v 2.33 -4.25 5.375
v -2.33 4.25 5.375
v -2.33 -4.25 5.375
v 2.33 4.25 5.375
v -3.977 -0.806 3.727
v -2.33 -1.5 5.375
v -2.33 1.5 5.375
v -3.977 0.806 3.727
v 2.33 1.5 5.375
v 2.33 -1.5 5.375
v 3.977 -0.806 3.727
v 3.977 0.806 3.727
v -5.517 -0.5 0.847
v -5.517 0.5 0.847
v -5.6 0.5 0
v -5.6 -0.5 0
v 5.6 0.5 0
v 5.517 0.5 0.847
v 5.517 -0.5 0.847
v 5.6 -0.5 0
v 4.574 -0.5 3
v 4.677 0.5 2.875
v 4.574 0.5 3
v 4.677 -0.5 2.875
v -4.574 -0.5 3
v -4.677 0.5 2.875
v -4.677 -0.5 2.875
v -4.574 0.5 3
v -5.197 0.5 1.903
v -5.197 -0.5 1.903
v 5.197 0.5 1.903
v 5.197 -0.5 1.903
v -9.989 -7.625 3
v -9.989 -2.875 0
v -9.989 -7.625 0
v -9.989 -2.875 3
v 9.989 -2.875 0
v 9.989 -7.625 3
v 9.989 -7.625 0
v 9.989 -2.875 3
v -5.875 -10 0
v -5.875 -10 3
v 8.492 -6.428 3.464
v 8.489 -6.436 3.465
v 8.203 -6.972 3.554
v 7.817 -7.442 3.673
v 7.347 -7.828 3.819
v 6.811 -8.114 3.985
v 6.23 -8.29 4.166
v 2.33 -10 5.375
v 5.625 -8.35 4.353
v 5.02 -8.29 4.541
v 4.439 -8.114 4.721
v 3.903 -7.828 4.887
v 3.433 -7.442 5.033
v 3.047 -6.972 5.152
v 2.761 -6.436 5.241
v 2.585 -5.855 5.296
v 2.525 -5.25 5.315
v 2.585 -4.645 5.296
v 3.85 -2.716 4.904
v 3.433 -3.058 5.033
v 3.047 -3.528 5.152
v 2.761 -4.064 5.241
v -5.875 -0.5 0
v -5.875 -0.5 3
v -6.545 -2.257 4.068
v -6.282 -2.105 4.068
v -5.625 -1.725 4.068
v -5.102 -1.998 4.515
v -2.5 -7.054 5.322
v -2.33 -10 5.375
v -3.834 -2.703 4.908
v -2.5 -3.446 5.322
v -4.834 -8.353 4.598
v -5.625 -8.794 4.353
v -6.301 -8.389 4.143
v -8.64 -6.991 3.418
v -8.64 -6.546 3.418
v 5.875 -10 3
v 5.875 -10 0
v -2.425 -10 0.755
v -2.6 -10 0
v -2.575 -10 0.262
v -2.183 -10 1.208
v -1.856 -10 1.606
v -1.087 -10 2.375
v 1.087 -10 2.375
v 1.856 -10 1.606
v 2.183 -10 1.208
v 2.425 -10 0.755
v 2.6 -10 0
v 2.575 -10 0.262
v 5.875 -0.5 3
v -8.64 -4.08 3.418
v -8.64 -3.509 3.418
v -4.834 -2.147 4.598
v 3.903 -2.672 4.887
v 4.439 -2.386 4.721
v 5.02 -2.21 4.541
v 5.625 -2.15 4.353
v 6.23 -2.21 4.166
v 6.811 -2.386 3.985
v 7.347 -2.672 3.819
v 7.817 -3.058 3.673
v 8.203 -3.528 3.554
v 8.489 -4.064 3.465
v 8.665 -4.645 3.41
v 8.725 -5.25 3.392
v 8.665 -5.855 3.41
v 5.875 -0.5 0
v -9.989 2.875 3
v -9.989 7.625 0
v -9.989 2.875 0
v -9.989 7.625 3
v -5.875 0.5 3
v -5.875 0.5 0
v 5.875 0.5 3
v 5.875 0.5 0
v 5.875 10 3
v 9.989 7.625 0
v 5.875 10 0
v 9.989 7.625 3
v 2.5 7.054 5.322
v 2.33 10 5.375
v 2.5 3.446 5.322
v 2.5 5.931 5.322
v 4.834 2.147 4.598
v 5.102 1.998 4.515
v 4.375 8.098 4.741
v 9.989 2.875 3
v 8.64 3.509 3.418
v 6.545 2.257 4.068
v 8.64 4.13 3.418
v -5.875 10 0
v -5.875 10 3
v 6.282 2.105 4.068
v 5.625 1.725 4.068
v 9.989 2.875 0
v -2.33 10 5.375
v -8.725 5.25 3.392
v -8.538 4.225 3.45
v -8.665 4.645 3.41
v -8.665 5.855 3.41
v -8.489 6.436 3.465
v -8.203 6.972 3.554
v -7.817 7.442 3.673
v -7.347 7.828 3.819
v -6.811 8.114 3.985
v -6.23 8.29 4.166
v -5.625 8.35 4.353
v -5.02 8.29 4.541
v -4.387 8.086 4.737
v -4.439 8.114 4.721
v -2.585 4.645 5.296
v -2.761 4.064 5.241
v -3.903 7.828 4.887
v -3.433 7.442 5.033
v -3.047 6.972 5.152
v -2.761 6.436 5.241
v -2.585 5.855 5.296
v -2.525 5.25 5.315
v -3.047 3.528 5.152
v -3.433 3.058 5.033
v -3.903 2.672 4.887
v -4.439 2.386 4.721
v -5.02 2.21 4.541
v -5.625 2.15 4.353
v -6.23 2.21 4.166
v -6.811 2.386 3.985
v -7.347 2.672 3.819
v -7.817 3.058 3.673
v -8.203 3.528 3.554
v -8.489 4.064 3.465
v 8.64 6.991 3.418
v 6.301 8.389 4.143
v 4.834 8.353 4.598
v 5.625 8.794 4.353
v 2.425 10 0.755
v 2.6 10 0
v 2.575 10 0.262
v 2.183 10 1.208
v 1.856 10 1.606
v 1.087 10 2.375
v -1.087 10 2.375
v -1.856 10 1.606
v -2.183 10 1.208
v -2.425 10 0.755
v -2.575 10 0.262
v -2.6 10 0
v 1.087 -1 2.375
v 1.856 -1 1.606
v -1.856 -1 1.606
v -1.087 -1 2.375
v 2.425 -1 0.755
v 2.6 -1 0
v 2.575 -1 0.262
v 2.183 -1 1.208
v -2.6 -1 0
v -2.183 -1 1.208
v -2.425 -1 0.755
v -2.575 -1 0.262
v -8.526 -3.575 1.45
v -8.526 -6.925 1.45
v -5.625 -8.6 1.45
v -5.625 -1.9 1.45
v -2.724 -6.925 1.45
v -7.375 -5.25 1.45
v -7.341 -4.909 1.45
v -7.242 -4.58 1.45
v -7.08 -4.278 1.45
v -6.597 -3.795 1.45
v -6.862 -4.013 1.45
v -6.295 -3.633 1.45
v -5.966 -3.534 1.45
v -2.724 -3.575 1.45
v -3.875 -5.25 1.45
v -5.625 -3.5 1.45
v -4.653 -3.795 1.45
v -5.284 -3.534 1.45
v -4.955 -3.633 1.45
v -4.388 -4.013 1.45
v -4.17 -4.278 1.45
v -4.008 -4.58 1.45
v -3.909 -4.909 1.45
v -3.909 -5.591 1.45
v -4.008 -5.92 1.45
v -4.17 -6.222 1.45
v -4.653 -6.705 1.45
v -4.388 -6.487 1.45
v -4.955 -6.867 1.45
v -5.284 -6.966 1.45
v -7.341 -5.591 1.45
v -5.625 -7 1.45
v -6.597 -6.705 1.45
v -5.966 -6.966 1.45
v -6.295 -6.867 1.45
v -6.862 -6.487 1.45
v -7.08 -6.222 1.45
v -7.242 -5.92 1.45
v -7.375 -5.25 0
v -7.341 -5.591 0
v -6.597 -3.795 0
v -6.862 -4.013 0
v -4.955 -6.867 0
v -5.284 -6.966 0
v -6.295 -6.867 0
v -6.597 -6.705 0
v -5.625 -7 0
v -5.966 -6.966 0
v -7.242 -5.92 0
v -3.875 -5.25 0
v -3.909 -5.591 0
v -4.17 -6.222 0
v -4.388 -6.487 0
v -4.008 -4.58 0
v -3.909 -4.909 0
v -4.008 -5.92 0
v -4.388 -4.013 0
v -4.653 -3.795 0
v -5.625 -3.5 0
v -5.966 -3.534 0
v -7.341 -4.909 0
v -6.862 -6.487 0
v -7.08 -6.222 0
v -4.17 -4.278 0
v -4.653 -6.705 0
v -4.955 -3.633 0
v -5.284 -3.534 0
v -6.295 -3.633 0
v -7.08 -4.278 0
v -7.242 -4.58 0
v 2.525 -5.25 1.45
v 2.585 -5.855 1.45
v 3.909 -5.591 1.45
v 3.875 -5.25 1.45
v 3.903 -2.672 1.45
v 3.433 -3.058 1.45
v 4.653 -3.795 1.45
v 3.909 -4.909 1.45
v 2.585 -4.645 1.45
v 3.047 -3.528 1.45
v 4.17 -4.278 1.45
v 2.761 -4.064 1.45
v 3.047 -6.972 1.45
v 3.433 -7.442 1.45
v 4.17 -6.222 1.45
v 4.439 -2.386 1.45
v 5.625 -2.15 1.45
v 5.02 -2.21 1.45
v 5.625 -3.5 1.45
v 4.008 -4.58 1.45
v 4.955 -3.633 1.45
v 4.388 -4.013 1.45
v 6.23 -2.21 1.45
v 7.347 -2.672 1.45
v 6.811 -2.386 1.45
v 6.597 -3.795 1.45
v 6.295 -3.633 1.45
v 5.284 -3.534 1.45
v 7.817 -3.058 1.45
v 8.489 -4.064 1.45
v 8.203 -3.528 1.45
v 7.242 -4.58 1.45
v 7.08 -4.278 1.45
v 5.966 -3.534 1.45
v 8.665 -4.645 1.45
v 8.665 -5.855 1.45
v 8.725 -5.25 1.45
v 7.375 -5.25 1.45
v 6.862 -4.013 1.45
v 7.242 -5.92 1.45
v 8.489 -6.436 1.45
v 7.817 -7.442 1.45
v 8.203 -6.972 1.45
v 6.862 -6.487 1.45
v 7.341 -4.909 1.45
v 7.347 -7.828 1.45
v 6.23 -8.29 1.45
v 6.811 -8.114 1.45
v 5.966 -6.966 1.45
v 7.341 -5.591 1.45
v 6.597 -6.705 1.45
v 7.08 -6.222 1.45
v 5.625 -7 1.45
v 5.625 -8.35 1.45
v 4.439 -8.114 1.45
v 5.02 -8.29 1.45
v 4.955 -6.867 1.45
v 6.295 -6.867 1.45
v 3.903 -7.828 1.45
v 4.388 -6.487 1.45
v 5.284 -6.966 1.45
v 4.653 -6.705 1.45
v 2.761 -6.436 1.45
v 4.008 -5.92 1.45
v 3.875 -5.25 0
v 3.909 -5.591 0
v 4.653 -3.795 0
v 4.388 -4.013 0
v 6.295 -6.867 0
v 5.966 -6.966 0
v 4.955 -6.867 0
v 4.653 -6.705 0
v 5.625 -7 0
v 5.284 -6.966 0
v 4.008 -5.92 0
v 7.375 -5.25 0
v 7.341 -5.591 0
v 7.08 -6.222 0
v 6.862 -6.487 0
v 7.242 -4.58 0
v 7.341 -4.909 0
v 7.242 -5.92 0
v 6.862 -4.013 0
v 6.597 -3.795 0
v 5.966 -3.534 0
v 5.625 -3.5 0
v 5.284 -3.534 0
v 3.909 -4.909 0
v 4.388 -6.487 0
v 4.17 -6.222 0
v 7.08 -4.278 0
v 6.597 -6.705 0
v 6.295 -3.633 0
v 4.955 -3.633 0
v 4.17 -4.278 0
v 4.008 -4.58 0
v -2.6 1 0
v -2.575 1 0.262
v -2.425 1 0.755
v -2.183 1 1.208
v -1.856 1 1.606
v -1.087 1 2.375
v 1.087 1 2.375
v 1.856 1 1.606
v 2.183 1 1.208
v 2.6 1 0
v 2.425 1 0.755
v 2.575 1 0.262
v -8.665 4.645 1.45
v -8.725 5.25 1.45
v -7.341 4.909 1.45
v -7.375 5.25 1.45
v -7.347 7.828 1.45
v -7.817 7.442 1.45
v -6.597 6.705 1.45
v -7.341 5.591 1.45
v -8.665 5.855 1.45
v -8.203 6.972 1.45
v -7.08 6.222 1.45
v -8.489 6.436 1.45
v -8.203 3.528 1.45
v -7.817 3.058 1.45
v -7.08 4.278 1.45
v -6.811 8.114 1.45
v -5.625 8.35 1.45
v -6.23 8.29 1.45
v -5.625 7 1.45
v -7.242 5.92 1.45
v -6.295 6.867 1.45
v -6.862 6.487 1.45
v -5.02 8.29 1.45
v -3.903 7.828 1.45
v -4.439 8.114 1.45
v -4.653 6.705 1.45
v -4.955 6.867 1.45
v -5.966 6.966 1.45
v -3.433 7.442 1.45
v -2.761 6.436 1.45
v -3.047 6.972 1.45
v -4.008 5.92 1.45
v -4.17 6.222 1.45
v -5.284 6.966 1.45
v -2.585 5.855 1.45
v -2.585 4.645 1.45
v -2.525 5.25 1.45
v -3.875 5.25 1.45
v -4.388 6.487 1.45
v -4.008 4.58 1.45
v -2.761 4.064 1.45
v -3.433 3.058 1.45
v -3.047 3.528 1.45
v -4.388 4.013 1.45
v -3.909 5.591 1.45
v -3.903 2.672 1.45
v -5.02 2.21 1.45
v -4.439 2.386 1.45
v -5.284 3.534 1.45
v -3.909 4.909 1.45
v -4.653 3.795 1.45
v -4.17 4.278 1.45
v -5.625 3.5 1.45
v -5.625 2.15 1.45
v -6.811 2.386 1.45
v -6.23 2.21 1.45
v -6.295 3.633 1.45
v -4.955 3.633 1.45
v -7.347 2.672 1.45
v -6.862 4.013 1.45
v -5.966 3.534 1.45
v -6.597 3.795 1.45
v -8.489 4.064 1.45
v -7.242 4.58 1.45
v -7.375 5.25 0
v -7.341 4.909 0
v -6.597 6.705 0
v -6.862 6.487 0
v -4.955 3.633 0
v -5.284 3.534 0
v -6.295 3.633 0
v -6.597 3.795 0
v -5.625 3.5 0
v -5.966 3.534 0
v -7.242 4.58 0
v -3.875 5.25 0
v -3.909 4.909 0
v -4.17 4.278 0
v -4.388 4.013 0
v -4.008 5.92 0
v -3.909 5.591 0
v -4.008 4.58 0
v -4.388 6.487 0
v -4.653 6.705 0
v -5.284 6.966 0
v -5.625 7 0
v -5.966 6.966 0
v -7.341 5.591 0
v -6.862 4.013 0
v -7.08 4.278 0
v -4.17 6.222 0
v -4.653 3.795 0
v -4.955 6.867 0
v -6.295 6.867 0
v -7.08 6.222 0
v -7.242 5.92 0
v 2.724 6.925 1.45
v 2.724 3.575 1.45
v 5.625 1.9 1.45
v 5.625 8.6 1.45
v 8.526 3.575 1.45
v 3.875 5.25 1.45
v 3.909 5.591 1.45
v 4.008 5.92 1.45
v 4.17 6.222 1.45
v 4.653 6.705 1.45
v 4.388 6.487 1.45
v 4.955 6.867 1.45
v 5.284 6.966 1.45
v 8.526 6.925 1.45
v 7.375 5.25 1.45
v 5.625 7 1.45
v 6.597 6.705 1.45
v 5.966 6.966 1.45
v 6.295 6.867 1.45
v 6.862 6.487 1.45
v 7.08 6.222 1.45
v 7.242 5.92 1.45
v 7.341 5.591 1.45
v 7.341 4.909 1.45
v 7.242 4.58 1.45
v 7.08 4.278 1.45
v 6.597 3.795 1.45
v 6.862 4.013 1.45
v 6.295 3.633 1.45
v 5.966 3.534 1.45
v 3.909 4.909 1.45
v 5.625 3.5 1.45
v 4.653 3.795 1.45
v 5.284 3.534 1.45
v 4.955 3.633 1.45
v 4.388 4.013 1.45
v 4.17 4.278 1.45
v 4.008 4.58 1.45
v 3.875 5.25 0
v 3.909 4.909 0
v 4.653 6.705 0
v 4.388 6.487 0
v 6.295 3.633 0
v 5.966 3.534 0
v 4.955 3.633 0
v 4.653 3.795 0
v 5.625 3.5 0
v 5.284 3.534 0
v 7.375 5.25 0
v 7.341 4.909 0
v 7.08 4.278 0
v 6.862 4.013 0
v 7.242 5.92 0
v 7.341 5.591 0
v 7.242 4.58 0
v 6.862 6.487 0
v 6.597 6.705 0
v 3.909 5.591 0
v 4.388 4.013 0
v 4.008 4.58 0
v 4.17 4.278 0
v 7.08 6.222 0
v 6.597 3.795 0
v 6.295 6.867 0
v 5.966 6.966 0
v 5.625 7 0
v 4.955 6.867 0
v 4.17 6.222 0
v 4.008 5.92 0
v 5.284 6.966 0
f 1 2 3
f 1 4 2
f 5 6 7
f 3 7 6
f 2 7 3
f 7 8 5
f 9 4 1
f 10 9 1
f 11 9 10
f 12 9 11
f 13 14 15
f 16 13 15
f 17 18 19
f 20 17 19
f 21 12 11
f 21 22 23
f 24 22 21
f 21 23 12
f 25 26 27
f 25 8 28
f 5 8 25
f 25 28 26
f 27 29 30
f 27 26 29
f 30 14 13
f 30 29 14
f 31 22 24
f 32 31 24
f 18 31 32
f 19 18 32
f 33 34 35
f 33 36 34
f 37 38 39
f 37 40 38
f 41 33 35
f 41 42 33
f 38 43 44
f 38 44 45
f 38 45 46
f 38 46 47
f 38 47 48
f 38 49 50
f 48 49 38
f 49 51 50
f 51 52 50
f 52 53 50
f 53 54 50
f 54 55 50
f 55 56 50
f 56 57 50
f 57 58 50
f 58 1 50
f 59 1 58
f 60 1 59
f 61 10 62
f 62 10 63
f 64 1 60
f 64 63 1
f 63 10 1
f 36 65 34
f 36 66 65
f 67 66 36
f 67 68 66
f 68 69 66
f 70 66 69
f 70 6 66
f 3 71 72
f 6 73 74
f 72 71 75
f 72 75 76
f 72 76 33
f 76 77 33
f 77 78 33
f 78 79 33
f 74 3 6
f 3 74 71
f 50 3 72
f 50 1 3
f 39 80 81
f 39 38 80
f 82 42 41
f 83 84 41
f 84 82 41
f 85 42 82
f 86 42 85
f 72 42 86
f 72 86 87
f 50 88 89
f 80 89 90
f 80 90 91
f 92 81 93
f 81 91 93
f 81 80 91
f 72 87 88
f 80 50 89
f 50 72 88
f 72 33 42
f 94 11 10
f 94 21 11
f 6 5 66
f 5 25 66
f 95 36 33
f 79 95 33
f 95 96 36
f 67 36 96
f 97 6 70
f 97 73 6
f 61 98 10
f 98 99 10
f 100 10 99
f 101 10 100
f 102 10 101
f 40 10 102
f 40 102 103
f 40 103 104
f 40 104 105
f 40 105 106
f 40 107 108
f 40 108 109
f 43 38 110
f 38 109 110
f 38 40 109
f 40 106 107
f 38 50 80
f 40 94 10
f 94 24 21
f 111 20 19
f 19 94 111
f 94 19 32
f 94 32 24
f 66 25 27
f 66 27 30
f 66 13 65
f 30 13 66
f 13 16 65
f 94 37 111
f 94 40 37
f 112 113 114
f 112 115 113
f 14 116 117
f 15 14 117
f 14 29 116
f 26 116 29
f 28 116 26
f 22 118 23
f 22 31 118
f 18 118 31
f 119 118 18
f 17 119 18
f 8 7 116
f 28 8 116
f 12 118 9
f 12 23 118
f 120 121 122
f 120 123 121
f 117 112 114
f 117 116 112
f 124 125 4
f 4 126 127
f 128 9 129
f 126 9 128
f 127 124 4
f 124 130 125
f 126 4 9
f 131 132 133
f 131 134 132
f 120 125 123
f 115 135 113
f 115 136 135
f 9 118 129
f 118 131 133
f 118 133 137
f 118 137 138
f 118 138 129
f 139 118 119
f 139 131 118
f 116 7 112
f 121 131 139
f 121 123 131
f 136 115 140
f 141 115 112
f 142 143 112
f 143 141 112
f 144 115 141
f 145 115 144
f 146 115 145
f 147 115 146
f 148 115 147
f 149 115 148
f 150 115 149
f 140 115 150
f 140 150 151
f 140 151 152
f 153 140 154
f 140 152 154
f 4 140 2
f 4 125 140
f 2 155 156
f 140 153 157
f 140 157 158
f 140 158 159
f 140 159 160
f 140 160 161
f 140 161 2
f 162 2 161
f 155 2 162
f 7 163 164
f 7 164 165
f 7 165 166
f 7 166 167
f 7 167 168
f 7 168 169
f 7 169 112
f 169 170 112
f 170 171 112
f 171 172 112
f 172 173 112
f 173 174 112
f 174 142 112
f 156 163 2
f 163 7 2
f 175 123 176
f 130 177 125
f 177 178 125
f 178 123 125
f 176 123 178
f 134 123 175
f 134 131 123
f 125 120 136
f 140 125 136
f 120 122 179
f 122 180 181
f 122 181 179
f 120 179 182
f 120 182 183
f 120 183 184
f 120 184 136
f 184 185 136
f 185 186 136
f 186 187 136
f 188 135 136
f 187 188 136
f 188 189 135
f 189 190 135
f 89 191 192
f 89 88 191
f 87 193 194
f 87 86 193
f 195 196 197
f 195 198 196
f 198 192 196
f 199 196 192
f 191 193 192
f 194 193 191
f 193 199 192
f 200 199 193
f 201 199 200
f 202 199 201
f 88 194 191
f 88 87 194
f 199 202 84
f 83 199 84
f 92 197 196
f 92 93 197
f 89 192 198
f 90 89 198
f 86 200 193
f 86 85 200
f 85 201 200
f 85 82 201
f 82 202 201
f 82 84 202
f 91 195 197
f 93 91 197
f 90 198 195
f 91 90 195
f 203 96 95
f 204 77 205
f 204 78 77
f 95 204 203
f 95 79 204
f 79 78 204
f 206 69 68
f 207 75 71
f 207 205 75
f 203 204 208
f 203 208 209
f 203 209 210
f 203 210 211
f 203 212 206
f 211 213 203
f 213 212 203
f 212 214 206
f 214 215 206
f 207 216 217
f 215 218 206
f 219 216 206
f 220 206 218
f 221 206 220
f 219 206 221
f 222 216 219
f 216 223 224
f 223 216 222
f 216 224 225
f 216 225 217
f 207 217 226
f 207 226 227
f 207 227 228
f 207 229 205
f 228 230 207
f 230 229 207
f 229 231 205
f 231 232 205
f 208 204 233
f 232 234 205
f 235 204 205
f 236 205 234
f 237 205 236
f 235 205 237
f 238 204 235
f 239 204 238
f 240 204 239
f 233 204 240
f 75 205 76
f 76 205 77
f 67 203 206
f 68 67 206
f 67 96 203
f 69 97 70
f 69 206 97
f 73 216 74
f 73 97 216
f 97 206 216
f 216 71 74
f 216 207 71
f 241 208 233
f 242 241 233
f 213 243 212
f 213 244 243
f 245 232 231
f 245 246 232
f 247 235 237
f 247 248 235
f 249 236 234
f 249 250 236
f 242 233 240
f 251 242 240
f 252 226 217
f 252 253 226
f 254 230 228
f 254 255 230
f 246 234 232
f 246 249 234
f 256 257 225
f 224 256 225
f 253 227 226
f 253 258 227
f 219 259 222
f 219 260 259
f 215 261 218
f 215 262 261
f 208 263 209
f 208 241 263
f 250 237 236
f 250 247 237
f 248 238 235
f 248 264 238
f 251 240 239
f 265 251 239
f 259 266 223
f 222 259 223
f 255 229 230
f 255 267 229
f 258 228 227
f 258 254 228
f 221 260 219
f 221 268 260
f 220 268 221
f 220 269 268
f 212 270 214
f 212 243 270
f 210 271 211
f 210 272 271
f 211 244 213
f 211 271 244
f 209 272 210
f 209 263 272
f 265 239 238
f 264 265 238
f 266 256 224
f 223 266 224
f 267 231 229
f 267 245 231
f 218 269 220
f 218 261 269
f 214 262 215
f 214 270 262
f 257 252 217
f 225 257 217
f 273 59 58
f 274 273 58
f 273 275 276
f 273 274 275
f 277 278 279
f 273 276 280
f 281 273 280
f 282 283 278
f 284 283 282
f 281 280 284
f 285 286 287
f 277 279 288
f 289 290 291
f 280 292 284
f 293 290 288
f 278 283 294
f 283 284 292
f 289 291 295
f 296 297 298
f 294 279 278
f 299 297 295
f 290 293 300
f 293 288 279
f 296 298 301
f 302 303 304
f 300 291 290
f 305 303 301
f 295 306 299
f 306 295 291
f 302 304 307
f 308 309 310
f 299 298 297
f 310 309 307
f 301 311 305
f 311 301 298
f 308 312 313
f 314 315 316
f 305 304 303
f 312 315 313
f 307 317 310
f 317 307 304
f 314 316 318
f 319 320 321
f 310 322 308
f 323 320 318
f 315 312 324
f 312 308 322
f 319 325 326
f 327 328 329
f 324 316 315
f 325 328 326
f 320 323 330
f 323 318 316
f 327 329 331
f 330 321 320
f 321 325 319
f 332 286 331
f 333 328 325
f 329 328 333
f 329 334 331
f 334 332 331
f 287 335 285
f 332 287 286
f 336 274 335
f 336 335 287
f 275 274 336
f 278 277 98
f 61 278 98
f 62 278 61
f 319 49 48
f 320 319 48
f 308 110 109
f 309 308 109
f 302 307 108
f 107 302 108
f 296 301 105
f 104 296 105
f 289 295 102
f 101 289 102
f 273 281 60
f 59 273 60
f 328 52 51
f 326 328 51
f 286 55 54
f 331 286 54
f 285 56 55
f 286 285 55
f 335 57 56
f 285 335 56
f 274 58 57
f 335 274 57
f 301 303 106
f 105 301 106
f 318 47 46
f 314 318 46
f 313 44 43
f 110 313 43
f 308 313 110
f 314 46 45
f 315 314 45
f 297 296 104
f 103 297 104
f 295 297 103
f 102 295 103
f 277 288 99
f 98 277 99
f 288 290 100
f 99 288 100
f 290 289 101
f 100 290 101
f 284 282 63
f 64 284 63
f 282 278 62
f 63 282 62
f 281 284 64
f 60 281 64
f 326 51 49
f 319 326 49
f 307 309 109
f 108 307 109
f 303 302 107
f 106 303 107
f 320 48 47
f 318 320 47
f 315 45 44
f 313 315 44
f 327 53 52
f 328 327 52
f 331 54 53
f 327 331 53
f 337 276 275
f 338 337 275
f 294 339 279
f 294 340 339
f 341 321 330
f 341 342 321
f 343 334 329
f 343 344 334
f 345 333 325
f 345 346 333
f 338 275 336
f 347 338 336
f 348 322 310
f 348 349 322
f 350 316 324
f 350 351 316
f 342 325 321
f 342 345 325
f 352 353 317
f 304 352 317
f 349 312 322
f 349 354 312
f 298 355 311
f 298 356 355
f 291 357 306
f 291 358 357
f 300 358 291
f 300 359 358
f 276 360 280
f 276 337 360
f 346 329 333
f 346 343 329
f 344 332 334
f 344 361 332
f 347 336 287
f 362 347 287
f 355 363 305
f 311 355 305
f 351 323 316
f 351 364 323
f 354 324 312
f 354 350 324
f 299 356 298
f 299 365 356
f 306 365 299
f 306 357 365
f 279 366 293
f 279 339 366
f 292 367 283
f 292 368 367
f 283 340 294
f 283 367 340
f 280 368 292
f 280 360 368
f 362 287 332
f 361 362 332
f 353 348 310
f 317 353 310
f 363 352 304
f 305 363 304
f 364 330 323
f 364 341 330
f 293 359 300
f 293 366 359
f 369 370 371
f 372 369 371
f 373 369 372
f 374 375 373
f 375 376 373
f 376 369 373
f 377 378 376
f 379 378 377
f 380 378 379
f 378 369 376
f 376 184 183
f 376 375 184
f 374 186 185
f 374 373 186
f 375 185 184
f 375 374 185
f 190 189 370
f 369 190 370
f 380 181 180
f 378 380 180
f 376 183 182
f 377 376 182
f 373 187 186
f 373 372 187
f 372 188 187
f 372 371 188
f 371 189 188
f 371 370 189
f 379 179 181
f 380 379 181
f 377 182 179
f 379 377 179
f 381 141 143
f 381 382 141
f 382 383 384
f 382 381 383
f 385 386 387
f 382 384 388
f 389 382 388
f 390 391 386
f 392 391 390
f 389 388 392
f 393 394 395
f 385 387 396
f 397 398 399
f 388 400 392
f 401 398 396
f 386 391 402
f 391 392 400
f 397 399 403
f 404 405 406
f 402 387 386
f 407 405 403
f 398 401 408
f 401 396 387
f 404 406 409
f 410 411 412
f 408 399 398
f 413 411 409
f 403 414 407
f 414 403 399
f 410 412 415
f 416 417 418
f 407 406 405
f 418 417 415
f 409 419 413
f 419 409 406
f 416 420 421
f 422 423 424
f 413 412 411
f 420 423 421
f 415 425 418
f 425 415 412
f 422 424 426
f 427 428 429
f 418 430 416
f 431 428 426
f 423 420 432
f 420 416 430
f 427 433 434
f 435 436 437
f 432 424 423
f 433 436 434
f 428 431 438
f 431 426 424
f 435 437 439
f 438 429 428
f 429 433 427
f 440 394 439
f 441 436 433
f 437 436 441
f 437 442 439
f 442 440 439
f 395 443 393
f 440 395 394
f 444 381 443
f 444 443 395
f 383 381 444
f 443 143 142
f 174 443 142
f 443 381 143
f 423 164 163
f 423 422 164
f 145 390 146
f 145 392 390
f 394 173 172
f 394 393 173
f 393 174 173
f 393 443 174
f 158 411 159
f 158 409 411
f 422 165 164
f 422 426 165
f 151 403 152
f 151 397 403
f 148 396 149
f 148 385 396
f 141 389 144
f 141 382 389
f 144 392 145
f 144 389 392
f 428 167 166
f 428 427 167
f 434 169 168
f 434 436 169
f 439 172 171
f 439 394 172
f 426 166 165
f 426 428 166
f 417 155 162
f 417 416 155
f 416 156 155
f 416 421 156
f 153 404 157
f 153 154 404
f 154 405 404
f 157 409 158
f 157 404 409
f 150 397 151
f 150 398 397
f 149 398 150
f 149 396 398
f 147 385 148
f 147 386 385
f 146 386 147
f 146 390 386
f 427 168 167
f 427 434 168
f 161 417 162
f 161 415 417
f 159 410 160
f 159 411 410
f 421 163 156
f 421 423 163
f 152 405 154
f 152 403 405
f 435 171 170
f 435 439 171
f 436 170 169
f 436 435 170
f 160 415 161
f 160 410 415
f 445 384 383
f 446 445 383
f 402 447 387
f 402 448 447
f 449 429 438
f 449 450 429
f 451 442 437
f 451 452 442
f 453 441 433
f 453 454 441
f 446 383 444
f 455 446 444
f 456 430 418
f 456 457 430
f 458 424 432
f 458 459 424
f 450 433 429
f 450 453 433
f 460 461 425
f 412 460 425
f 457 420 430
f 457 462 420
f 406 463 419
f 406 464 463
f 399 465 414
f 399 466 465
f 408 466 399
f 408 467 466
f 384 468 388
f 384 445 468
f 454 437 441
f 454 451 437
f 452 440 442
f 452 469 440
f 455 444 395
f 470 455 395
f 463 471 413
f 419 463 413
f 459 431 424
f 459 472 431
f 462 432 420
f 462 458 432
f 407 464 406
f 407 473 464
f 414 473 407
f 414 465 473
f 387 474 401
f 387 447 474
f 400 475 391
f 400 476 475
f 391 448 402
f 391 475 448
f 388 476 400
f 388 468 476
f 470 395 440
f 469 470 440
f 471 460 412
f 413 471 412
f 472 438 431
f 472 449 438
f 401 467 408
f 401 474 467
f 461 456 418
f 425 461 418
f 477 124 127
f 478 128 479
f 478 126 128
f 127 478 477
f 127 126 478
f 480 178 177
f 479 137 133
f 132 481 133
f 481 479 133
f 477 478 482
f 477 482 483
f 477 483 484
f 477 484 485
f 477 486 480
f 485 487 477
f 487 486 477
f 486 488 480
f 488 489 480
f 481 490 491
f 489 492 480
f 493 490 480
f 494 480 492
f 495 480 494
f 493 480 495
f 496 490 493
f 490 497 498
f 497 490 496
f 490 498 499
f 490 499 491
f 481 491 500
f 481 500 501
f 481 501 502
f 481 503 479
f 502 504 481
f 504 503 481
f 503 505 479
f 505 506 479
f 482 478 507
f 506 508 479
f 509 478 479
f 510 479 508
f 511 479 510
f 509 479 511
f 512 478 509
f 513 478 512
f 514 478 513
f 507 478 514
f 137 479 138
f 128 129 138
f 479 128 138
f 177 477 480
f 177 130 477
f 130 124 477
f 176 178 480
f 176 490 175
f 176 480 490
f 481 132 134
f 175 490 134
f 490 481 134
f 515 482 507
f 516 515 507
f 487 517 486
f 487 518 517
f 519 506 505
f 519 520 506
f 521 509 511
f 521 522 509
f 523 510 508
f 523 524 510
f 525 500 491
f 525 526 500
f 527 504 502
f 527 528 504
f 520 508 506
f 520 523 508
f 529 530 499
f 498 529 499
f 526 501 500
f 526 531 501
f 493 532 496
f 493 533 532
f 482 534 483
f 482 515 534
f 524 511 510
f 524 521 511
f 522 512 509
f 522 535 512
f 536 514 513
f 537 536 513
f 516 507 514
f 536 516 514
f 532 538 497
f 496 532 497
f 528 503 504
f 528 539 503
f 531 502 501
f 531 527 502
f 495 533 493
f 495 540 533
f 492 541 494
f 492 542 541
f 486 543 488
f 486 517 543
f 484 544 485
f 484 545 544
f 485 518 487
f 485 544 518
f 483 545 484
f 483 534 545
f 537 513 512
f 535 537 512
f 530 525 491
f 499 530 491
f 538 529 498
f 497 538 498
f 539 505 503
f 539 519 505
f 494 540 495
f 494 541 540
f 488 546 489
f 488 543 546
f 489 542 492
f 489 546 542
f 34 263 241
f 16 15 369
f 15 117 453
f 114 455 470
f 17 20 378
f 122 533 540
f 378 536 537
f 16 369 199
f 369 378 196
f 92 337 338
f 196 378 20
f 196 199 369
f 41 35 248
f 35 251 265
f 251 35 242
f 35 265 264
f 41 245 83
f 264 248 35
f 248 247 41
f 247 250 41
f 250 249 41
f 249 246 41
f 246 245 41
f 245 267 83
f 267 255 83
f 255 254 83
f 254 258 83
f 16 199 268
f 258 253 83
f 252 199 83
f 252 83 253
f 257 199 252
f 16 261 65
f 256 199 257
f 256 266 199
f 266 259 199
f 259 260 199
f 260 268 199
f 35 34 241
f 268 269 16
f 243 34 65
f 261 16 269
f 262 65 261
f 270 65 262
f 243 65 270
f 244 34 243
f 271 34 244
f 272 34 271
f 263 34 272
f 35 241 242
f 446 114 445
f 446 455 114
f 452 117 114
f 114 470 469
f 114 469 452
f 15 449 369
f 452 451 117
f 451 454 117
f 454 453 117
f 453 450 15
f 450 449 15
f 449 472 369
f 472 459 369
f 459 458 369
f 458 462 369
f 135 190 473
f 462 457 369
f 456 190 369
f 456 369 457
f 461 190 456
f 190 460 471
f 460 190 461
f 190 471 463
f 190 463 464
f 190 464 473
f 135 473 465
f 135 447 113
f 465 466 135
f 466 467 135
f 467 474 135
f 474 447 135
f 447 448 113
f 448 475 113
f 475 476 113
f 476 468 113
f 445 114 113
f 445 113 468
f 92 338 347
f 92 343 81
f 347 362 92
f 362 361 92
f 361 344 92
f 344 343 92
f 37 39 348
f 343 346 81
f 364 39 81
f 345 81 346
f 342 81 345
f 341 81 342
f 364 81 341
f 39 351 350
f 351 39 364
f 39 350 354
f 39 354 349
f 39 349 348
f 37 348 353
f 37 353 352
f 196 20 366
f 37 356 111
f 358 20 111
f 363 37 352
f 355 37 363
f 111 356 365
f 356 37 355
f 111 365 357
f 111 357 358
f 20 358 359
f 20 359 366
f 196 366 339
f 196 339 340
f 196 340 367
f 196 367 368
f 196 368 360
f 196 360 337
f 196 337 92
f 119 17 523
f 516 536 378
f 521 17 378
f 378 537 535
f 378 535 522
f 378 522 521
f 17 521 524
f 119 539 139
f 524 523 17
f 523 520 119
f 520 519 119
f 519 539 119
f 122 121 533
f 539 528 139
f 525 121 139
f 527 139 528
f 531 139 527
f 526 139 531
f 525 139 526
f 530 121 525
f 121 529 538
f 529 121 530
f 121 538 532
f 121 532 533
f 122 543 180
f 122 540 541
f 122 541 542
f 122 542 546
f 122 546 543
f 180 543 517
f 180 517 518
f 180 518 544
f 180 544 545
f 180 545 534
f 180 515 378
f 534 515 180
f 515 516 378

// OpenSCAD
slop = .25;

m3_dia = 3;
m3_rad = m3_dia/2+slop;

m3_cap_dia = 5.7;
m3_cap_rad = m3_cap_dia/2+slop;
m3_cap_thick = 1.65+slop/2;
m3_cap_hex_rad = (2/cos(30))/2;

m3_nut_dia = 6.45;
m3_nut_rad = m3_nut_dia/2+slop/2;
m3_nut_thick = 2.4;

m5_dia = 5;
m5_rad = 5/2+slop/2;

lm8uu_dia = 15;
lm8uu_rad = lm8uu_dia/2+slop;
lm8uu_len = 24+slop;

m5_inset = -.25;  //for clamping

wall = 3;
width = 12;
hole_sep = m5_rad+m3_rad+wall/2;
len = 8.5;

$fn=32;

bearing_clamp();
//%translate([0,0,m5_inset*2]) mirror([0,0,1]) bearing_clamp();

module bearing_clamp(){
        inset = .25;
	difference(){
		union(){
			rotate([-90,0,0]) translate([0,-m5_inset,0]) cap_cylinder(r=m5_rad+wall, h=len, center=true);
			for(i=[-1,1])
				hull(){
					rotate([-90,0,0]) translate([0,-m5_inset,i*(wall/2+len/2)]) cap_cylinder(r=m5_rad+wall, h=len, center=true);

					for(j=[-1,1]) translate([j*hole_sep,i*(len-m3_rad-wall/2),0]) rotate([0,0,30]) cylinder(r=m3_rad+wall, h=wall, $fn=6);
			}
		}

		for(i=[-1,1]){
				rotate([-90,0,0]) translate([0,-m5_inset,i*(wall/2+len/2)]) cap_cylinder(r=m5_rad, h=len+1, center=true);

				for(j=[-1,1]) translate([j*hole_sep,i*(len-m3_rad-wall/2),-.05]) {	
					if((i+j)==0){
						translate([inset*i,0,wall/2]) {
                                                    cylinder(r=m3_cap_rad, h=lm8uu_dia);
                                                    cylinder(r=m3_rad, h=wall*3, center=true);
                                            }
					}else{
						translate([-inset*i,0,wall/2]) {
                                                    rotate([0,0,30]) cylinder(r1=m3_nut_rad, r2=m3_nut_rad+1, h=lm8uu_dia, $fn=6);
                                                    cylinder(r=m3_rad, h=wall*3, center=true);
                                                }
					}
				}
		}

		translate([0,0,-50]) cube([100,100,100], center=true); 
	}
}

module nut_trap(){
	difference(){
		hull(){
			for(i=[0,1]) mirror([i,0,0]) translate([hole_sep/2,0,0]) cylinder(r=m3_rad+wall, h=1+m3_nut_thick);
		}

		//screwholes
		for(i=[0,1]) mirror([i,0,0]) translate([hole_sep/2,0,-.1]) {
			cylinder(r=m3_rad, h=wall+.1);
			translate([0,0,1]) cylinder(r=m3_nut_rad, h=lm8uu_dia, $fn=6);
		}

		translate([0,0,-50]) cube([100,100,100], center=true); 
	}
}

module cap_screw(len = 10){
	color([.25,.25,.25])
	difference(){
		union(){
			translate([0,0,-len/2]) rotate([0,0,-90]) cap_cylinder(r=screw_rad, h=len, center=true);
			translate([0,0,len/2-.1]) difference(){
				scale([1,1,.75]) sphere(r=cap_rad);
				translate([0,0,-cap_dia/2]) cube([cap_dia+1, cap_dia+1, cap_dia],center=true);
				translate([0,0,cap_dia/2+.1+cap_thick]) cube([cap_dia+1, cap_dia+1, cap_dia],center=true);
			}
		}
		
		translate([0,0,len/2+slop]) cylinder(r=cap_hex_rad, h=cap_thick, $fn=6);
	}
}

module cap_cylinder(r=1, h=1, center=false){
	cylinder(r=r, h=h, center=center);
	intersection(){
		rotate([0,0,22.5]) cylinder(r=r/cos(180/8), h=h, $fn=8, center=center);
		translate([0,-r/cos(180/4),0]) rotate([0,0,0]) cylinder(r=r/cos(180/4), h=h, $fn=4, center=center);
	}
}
